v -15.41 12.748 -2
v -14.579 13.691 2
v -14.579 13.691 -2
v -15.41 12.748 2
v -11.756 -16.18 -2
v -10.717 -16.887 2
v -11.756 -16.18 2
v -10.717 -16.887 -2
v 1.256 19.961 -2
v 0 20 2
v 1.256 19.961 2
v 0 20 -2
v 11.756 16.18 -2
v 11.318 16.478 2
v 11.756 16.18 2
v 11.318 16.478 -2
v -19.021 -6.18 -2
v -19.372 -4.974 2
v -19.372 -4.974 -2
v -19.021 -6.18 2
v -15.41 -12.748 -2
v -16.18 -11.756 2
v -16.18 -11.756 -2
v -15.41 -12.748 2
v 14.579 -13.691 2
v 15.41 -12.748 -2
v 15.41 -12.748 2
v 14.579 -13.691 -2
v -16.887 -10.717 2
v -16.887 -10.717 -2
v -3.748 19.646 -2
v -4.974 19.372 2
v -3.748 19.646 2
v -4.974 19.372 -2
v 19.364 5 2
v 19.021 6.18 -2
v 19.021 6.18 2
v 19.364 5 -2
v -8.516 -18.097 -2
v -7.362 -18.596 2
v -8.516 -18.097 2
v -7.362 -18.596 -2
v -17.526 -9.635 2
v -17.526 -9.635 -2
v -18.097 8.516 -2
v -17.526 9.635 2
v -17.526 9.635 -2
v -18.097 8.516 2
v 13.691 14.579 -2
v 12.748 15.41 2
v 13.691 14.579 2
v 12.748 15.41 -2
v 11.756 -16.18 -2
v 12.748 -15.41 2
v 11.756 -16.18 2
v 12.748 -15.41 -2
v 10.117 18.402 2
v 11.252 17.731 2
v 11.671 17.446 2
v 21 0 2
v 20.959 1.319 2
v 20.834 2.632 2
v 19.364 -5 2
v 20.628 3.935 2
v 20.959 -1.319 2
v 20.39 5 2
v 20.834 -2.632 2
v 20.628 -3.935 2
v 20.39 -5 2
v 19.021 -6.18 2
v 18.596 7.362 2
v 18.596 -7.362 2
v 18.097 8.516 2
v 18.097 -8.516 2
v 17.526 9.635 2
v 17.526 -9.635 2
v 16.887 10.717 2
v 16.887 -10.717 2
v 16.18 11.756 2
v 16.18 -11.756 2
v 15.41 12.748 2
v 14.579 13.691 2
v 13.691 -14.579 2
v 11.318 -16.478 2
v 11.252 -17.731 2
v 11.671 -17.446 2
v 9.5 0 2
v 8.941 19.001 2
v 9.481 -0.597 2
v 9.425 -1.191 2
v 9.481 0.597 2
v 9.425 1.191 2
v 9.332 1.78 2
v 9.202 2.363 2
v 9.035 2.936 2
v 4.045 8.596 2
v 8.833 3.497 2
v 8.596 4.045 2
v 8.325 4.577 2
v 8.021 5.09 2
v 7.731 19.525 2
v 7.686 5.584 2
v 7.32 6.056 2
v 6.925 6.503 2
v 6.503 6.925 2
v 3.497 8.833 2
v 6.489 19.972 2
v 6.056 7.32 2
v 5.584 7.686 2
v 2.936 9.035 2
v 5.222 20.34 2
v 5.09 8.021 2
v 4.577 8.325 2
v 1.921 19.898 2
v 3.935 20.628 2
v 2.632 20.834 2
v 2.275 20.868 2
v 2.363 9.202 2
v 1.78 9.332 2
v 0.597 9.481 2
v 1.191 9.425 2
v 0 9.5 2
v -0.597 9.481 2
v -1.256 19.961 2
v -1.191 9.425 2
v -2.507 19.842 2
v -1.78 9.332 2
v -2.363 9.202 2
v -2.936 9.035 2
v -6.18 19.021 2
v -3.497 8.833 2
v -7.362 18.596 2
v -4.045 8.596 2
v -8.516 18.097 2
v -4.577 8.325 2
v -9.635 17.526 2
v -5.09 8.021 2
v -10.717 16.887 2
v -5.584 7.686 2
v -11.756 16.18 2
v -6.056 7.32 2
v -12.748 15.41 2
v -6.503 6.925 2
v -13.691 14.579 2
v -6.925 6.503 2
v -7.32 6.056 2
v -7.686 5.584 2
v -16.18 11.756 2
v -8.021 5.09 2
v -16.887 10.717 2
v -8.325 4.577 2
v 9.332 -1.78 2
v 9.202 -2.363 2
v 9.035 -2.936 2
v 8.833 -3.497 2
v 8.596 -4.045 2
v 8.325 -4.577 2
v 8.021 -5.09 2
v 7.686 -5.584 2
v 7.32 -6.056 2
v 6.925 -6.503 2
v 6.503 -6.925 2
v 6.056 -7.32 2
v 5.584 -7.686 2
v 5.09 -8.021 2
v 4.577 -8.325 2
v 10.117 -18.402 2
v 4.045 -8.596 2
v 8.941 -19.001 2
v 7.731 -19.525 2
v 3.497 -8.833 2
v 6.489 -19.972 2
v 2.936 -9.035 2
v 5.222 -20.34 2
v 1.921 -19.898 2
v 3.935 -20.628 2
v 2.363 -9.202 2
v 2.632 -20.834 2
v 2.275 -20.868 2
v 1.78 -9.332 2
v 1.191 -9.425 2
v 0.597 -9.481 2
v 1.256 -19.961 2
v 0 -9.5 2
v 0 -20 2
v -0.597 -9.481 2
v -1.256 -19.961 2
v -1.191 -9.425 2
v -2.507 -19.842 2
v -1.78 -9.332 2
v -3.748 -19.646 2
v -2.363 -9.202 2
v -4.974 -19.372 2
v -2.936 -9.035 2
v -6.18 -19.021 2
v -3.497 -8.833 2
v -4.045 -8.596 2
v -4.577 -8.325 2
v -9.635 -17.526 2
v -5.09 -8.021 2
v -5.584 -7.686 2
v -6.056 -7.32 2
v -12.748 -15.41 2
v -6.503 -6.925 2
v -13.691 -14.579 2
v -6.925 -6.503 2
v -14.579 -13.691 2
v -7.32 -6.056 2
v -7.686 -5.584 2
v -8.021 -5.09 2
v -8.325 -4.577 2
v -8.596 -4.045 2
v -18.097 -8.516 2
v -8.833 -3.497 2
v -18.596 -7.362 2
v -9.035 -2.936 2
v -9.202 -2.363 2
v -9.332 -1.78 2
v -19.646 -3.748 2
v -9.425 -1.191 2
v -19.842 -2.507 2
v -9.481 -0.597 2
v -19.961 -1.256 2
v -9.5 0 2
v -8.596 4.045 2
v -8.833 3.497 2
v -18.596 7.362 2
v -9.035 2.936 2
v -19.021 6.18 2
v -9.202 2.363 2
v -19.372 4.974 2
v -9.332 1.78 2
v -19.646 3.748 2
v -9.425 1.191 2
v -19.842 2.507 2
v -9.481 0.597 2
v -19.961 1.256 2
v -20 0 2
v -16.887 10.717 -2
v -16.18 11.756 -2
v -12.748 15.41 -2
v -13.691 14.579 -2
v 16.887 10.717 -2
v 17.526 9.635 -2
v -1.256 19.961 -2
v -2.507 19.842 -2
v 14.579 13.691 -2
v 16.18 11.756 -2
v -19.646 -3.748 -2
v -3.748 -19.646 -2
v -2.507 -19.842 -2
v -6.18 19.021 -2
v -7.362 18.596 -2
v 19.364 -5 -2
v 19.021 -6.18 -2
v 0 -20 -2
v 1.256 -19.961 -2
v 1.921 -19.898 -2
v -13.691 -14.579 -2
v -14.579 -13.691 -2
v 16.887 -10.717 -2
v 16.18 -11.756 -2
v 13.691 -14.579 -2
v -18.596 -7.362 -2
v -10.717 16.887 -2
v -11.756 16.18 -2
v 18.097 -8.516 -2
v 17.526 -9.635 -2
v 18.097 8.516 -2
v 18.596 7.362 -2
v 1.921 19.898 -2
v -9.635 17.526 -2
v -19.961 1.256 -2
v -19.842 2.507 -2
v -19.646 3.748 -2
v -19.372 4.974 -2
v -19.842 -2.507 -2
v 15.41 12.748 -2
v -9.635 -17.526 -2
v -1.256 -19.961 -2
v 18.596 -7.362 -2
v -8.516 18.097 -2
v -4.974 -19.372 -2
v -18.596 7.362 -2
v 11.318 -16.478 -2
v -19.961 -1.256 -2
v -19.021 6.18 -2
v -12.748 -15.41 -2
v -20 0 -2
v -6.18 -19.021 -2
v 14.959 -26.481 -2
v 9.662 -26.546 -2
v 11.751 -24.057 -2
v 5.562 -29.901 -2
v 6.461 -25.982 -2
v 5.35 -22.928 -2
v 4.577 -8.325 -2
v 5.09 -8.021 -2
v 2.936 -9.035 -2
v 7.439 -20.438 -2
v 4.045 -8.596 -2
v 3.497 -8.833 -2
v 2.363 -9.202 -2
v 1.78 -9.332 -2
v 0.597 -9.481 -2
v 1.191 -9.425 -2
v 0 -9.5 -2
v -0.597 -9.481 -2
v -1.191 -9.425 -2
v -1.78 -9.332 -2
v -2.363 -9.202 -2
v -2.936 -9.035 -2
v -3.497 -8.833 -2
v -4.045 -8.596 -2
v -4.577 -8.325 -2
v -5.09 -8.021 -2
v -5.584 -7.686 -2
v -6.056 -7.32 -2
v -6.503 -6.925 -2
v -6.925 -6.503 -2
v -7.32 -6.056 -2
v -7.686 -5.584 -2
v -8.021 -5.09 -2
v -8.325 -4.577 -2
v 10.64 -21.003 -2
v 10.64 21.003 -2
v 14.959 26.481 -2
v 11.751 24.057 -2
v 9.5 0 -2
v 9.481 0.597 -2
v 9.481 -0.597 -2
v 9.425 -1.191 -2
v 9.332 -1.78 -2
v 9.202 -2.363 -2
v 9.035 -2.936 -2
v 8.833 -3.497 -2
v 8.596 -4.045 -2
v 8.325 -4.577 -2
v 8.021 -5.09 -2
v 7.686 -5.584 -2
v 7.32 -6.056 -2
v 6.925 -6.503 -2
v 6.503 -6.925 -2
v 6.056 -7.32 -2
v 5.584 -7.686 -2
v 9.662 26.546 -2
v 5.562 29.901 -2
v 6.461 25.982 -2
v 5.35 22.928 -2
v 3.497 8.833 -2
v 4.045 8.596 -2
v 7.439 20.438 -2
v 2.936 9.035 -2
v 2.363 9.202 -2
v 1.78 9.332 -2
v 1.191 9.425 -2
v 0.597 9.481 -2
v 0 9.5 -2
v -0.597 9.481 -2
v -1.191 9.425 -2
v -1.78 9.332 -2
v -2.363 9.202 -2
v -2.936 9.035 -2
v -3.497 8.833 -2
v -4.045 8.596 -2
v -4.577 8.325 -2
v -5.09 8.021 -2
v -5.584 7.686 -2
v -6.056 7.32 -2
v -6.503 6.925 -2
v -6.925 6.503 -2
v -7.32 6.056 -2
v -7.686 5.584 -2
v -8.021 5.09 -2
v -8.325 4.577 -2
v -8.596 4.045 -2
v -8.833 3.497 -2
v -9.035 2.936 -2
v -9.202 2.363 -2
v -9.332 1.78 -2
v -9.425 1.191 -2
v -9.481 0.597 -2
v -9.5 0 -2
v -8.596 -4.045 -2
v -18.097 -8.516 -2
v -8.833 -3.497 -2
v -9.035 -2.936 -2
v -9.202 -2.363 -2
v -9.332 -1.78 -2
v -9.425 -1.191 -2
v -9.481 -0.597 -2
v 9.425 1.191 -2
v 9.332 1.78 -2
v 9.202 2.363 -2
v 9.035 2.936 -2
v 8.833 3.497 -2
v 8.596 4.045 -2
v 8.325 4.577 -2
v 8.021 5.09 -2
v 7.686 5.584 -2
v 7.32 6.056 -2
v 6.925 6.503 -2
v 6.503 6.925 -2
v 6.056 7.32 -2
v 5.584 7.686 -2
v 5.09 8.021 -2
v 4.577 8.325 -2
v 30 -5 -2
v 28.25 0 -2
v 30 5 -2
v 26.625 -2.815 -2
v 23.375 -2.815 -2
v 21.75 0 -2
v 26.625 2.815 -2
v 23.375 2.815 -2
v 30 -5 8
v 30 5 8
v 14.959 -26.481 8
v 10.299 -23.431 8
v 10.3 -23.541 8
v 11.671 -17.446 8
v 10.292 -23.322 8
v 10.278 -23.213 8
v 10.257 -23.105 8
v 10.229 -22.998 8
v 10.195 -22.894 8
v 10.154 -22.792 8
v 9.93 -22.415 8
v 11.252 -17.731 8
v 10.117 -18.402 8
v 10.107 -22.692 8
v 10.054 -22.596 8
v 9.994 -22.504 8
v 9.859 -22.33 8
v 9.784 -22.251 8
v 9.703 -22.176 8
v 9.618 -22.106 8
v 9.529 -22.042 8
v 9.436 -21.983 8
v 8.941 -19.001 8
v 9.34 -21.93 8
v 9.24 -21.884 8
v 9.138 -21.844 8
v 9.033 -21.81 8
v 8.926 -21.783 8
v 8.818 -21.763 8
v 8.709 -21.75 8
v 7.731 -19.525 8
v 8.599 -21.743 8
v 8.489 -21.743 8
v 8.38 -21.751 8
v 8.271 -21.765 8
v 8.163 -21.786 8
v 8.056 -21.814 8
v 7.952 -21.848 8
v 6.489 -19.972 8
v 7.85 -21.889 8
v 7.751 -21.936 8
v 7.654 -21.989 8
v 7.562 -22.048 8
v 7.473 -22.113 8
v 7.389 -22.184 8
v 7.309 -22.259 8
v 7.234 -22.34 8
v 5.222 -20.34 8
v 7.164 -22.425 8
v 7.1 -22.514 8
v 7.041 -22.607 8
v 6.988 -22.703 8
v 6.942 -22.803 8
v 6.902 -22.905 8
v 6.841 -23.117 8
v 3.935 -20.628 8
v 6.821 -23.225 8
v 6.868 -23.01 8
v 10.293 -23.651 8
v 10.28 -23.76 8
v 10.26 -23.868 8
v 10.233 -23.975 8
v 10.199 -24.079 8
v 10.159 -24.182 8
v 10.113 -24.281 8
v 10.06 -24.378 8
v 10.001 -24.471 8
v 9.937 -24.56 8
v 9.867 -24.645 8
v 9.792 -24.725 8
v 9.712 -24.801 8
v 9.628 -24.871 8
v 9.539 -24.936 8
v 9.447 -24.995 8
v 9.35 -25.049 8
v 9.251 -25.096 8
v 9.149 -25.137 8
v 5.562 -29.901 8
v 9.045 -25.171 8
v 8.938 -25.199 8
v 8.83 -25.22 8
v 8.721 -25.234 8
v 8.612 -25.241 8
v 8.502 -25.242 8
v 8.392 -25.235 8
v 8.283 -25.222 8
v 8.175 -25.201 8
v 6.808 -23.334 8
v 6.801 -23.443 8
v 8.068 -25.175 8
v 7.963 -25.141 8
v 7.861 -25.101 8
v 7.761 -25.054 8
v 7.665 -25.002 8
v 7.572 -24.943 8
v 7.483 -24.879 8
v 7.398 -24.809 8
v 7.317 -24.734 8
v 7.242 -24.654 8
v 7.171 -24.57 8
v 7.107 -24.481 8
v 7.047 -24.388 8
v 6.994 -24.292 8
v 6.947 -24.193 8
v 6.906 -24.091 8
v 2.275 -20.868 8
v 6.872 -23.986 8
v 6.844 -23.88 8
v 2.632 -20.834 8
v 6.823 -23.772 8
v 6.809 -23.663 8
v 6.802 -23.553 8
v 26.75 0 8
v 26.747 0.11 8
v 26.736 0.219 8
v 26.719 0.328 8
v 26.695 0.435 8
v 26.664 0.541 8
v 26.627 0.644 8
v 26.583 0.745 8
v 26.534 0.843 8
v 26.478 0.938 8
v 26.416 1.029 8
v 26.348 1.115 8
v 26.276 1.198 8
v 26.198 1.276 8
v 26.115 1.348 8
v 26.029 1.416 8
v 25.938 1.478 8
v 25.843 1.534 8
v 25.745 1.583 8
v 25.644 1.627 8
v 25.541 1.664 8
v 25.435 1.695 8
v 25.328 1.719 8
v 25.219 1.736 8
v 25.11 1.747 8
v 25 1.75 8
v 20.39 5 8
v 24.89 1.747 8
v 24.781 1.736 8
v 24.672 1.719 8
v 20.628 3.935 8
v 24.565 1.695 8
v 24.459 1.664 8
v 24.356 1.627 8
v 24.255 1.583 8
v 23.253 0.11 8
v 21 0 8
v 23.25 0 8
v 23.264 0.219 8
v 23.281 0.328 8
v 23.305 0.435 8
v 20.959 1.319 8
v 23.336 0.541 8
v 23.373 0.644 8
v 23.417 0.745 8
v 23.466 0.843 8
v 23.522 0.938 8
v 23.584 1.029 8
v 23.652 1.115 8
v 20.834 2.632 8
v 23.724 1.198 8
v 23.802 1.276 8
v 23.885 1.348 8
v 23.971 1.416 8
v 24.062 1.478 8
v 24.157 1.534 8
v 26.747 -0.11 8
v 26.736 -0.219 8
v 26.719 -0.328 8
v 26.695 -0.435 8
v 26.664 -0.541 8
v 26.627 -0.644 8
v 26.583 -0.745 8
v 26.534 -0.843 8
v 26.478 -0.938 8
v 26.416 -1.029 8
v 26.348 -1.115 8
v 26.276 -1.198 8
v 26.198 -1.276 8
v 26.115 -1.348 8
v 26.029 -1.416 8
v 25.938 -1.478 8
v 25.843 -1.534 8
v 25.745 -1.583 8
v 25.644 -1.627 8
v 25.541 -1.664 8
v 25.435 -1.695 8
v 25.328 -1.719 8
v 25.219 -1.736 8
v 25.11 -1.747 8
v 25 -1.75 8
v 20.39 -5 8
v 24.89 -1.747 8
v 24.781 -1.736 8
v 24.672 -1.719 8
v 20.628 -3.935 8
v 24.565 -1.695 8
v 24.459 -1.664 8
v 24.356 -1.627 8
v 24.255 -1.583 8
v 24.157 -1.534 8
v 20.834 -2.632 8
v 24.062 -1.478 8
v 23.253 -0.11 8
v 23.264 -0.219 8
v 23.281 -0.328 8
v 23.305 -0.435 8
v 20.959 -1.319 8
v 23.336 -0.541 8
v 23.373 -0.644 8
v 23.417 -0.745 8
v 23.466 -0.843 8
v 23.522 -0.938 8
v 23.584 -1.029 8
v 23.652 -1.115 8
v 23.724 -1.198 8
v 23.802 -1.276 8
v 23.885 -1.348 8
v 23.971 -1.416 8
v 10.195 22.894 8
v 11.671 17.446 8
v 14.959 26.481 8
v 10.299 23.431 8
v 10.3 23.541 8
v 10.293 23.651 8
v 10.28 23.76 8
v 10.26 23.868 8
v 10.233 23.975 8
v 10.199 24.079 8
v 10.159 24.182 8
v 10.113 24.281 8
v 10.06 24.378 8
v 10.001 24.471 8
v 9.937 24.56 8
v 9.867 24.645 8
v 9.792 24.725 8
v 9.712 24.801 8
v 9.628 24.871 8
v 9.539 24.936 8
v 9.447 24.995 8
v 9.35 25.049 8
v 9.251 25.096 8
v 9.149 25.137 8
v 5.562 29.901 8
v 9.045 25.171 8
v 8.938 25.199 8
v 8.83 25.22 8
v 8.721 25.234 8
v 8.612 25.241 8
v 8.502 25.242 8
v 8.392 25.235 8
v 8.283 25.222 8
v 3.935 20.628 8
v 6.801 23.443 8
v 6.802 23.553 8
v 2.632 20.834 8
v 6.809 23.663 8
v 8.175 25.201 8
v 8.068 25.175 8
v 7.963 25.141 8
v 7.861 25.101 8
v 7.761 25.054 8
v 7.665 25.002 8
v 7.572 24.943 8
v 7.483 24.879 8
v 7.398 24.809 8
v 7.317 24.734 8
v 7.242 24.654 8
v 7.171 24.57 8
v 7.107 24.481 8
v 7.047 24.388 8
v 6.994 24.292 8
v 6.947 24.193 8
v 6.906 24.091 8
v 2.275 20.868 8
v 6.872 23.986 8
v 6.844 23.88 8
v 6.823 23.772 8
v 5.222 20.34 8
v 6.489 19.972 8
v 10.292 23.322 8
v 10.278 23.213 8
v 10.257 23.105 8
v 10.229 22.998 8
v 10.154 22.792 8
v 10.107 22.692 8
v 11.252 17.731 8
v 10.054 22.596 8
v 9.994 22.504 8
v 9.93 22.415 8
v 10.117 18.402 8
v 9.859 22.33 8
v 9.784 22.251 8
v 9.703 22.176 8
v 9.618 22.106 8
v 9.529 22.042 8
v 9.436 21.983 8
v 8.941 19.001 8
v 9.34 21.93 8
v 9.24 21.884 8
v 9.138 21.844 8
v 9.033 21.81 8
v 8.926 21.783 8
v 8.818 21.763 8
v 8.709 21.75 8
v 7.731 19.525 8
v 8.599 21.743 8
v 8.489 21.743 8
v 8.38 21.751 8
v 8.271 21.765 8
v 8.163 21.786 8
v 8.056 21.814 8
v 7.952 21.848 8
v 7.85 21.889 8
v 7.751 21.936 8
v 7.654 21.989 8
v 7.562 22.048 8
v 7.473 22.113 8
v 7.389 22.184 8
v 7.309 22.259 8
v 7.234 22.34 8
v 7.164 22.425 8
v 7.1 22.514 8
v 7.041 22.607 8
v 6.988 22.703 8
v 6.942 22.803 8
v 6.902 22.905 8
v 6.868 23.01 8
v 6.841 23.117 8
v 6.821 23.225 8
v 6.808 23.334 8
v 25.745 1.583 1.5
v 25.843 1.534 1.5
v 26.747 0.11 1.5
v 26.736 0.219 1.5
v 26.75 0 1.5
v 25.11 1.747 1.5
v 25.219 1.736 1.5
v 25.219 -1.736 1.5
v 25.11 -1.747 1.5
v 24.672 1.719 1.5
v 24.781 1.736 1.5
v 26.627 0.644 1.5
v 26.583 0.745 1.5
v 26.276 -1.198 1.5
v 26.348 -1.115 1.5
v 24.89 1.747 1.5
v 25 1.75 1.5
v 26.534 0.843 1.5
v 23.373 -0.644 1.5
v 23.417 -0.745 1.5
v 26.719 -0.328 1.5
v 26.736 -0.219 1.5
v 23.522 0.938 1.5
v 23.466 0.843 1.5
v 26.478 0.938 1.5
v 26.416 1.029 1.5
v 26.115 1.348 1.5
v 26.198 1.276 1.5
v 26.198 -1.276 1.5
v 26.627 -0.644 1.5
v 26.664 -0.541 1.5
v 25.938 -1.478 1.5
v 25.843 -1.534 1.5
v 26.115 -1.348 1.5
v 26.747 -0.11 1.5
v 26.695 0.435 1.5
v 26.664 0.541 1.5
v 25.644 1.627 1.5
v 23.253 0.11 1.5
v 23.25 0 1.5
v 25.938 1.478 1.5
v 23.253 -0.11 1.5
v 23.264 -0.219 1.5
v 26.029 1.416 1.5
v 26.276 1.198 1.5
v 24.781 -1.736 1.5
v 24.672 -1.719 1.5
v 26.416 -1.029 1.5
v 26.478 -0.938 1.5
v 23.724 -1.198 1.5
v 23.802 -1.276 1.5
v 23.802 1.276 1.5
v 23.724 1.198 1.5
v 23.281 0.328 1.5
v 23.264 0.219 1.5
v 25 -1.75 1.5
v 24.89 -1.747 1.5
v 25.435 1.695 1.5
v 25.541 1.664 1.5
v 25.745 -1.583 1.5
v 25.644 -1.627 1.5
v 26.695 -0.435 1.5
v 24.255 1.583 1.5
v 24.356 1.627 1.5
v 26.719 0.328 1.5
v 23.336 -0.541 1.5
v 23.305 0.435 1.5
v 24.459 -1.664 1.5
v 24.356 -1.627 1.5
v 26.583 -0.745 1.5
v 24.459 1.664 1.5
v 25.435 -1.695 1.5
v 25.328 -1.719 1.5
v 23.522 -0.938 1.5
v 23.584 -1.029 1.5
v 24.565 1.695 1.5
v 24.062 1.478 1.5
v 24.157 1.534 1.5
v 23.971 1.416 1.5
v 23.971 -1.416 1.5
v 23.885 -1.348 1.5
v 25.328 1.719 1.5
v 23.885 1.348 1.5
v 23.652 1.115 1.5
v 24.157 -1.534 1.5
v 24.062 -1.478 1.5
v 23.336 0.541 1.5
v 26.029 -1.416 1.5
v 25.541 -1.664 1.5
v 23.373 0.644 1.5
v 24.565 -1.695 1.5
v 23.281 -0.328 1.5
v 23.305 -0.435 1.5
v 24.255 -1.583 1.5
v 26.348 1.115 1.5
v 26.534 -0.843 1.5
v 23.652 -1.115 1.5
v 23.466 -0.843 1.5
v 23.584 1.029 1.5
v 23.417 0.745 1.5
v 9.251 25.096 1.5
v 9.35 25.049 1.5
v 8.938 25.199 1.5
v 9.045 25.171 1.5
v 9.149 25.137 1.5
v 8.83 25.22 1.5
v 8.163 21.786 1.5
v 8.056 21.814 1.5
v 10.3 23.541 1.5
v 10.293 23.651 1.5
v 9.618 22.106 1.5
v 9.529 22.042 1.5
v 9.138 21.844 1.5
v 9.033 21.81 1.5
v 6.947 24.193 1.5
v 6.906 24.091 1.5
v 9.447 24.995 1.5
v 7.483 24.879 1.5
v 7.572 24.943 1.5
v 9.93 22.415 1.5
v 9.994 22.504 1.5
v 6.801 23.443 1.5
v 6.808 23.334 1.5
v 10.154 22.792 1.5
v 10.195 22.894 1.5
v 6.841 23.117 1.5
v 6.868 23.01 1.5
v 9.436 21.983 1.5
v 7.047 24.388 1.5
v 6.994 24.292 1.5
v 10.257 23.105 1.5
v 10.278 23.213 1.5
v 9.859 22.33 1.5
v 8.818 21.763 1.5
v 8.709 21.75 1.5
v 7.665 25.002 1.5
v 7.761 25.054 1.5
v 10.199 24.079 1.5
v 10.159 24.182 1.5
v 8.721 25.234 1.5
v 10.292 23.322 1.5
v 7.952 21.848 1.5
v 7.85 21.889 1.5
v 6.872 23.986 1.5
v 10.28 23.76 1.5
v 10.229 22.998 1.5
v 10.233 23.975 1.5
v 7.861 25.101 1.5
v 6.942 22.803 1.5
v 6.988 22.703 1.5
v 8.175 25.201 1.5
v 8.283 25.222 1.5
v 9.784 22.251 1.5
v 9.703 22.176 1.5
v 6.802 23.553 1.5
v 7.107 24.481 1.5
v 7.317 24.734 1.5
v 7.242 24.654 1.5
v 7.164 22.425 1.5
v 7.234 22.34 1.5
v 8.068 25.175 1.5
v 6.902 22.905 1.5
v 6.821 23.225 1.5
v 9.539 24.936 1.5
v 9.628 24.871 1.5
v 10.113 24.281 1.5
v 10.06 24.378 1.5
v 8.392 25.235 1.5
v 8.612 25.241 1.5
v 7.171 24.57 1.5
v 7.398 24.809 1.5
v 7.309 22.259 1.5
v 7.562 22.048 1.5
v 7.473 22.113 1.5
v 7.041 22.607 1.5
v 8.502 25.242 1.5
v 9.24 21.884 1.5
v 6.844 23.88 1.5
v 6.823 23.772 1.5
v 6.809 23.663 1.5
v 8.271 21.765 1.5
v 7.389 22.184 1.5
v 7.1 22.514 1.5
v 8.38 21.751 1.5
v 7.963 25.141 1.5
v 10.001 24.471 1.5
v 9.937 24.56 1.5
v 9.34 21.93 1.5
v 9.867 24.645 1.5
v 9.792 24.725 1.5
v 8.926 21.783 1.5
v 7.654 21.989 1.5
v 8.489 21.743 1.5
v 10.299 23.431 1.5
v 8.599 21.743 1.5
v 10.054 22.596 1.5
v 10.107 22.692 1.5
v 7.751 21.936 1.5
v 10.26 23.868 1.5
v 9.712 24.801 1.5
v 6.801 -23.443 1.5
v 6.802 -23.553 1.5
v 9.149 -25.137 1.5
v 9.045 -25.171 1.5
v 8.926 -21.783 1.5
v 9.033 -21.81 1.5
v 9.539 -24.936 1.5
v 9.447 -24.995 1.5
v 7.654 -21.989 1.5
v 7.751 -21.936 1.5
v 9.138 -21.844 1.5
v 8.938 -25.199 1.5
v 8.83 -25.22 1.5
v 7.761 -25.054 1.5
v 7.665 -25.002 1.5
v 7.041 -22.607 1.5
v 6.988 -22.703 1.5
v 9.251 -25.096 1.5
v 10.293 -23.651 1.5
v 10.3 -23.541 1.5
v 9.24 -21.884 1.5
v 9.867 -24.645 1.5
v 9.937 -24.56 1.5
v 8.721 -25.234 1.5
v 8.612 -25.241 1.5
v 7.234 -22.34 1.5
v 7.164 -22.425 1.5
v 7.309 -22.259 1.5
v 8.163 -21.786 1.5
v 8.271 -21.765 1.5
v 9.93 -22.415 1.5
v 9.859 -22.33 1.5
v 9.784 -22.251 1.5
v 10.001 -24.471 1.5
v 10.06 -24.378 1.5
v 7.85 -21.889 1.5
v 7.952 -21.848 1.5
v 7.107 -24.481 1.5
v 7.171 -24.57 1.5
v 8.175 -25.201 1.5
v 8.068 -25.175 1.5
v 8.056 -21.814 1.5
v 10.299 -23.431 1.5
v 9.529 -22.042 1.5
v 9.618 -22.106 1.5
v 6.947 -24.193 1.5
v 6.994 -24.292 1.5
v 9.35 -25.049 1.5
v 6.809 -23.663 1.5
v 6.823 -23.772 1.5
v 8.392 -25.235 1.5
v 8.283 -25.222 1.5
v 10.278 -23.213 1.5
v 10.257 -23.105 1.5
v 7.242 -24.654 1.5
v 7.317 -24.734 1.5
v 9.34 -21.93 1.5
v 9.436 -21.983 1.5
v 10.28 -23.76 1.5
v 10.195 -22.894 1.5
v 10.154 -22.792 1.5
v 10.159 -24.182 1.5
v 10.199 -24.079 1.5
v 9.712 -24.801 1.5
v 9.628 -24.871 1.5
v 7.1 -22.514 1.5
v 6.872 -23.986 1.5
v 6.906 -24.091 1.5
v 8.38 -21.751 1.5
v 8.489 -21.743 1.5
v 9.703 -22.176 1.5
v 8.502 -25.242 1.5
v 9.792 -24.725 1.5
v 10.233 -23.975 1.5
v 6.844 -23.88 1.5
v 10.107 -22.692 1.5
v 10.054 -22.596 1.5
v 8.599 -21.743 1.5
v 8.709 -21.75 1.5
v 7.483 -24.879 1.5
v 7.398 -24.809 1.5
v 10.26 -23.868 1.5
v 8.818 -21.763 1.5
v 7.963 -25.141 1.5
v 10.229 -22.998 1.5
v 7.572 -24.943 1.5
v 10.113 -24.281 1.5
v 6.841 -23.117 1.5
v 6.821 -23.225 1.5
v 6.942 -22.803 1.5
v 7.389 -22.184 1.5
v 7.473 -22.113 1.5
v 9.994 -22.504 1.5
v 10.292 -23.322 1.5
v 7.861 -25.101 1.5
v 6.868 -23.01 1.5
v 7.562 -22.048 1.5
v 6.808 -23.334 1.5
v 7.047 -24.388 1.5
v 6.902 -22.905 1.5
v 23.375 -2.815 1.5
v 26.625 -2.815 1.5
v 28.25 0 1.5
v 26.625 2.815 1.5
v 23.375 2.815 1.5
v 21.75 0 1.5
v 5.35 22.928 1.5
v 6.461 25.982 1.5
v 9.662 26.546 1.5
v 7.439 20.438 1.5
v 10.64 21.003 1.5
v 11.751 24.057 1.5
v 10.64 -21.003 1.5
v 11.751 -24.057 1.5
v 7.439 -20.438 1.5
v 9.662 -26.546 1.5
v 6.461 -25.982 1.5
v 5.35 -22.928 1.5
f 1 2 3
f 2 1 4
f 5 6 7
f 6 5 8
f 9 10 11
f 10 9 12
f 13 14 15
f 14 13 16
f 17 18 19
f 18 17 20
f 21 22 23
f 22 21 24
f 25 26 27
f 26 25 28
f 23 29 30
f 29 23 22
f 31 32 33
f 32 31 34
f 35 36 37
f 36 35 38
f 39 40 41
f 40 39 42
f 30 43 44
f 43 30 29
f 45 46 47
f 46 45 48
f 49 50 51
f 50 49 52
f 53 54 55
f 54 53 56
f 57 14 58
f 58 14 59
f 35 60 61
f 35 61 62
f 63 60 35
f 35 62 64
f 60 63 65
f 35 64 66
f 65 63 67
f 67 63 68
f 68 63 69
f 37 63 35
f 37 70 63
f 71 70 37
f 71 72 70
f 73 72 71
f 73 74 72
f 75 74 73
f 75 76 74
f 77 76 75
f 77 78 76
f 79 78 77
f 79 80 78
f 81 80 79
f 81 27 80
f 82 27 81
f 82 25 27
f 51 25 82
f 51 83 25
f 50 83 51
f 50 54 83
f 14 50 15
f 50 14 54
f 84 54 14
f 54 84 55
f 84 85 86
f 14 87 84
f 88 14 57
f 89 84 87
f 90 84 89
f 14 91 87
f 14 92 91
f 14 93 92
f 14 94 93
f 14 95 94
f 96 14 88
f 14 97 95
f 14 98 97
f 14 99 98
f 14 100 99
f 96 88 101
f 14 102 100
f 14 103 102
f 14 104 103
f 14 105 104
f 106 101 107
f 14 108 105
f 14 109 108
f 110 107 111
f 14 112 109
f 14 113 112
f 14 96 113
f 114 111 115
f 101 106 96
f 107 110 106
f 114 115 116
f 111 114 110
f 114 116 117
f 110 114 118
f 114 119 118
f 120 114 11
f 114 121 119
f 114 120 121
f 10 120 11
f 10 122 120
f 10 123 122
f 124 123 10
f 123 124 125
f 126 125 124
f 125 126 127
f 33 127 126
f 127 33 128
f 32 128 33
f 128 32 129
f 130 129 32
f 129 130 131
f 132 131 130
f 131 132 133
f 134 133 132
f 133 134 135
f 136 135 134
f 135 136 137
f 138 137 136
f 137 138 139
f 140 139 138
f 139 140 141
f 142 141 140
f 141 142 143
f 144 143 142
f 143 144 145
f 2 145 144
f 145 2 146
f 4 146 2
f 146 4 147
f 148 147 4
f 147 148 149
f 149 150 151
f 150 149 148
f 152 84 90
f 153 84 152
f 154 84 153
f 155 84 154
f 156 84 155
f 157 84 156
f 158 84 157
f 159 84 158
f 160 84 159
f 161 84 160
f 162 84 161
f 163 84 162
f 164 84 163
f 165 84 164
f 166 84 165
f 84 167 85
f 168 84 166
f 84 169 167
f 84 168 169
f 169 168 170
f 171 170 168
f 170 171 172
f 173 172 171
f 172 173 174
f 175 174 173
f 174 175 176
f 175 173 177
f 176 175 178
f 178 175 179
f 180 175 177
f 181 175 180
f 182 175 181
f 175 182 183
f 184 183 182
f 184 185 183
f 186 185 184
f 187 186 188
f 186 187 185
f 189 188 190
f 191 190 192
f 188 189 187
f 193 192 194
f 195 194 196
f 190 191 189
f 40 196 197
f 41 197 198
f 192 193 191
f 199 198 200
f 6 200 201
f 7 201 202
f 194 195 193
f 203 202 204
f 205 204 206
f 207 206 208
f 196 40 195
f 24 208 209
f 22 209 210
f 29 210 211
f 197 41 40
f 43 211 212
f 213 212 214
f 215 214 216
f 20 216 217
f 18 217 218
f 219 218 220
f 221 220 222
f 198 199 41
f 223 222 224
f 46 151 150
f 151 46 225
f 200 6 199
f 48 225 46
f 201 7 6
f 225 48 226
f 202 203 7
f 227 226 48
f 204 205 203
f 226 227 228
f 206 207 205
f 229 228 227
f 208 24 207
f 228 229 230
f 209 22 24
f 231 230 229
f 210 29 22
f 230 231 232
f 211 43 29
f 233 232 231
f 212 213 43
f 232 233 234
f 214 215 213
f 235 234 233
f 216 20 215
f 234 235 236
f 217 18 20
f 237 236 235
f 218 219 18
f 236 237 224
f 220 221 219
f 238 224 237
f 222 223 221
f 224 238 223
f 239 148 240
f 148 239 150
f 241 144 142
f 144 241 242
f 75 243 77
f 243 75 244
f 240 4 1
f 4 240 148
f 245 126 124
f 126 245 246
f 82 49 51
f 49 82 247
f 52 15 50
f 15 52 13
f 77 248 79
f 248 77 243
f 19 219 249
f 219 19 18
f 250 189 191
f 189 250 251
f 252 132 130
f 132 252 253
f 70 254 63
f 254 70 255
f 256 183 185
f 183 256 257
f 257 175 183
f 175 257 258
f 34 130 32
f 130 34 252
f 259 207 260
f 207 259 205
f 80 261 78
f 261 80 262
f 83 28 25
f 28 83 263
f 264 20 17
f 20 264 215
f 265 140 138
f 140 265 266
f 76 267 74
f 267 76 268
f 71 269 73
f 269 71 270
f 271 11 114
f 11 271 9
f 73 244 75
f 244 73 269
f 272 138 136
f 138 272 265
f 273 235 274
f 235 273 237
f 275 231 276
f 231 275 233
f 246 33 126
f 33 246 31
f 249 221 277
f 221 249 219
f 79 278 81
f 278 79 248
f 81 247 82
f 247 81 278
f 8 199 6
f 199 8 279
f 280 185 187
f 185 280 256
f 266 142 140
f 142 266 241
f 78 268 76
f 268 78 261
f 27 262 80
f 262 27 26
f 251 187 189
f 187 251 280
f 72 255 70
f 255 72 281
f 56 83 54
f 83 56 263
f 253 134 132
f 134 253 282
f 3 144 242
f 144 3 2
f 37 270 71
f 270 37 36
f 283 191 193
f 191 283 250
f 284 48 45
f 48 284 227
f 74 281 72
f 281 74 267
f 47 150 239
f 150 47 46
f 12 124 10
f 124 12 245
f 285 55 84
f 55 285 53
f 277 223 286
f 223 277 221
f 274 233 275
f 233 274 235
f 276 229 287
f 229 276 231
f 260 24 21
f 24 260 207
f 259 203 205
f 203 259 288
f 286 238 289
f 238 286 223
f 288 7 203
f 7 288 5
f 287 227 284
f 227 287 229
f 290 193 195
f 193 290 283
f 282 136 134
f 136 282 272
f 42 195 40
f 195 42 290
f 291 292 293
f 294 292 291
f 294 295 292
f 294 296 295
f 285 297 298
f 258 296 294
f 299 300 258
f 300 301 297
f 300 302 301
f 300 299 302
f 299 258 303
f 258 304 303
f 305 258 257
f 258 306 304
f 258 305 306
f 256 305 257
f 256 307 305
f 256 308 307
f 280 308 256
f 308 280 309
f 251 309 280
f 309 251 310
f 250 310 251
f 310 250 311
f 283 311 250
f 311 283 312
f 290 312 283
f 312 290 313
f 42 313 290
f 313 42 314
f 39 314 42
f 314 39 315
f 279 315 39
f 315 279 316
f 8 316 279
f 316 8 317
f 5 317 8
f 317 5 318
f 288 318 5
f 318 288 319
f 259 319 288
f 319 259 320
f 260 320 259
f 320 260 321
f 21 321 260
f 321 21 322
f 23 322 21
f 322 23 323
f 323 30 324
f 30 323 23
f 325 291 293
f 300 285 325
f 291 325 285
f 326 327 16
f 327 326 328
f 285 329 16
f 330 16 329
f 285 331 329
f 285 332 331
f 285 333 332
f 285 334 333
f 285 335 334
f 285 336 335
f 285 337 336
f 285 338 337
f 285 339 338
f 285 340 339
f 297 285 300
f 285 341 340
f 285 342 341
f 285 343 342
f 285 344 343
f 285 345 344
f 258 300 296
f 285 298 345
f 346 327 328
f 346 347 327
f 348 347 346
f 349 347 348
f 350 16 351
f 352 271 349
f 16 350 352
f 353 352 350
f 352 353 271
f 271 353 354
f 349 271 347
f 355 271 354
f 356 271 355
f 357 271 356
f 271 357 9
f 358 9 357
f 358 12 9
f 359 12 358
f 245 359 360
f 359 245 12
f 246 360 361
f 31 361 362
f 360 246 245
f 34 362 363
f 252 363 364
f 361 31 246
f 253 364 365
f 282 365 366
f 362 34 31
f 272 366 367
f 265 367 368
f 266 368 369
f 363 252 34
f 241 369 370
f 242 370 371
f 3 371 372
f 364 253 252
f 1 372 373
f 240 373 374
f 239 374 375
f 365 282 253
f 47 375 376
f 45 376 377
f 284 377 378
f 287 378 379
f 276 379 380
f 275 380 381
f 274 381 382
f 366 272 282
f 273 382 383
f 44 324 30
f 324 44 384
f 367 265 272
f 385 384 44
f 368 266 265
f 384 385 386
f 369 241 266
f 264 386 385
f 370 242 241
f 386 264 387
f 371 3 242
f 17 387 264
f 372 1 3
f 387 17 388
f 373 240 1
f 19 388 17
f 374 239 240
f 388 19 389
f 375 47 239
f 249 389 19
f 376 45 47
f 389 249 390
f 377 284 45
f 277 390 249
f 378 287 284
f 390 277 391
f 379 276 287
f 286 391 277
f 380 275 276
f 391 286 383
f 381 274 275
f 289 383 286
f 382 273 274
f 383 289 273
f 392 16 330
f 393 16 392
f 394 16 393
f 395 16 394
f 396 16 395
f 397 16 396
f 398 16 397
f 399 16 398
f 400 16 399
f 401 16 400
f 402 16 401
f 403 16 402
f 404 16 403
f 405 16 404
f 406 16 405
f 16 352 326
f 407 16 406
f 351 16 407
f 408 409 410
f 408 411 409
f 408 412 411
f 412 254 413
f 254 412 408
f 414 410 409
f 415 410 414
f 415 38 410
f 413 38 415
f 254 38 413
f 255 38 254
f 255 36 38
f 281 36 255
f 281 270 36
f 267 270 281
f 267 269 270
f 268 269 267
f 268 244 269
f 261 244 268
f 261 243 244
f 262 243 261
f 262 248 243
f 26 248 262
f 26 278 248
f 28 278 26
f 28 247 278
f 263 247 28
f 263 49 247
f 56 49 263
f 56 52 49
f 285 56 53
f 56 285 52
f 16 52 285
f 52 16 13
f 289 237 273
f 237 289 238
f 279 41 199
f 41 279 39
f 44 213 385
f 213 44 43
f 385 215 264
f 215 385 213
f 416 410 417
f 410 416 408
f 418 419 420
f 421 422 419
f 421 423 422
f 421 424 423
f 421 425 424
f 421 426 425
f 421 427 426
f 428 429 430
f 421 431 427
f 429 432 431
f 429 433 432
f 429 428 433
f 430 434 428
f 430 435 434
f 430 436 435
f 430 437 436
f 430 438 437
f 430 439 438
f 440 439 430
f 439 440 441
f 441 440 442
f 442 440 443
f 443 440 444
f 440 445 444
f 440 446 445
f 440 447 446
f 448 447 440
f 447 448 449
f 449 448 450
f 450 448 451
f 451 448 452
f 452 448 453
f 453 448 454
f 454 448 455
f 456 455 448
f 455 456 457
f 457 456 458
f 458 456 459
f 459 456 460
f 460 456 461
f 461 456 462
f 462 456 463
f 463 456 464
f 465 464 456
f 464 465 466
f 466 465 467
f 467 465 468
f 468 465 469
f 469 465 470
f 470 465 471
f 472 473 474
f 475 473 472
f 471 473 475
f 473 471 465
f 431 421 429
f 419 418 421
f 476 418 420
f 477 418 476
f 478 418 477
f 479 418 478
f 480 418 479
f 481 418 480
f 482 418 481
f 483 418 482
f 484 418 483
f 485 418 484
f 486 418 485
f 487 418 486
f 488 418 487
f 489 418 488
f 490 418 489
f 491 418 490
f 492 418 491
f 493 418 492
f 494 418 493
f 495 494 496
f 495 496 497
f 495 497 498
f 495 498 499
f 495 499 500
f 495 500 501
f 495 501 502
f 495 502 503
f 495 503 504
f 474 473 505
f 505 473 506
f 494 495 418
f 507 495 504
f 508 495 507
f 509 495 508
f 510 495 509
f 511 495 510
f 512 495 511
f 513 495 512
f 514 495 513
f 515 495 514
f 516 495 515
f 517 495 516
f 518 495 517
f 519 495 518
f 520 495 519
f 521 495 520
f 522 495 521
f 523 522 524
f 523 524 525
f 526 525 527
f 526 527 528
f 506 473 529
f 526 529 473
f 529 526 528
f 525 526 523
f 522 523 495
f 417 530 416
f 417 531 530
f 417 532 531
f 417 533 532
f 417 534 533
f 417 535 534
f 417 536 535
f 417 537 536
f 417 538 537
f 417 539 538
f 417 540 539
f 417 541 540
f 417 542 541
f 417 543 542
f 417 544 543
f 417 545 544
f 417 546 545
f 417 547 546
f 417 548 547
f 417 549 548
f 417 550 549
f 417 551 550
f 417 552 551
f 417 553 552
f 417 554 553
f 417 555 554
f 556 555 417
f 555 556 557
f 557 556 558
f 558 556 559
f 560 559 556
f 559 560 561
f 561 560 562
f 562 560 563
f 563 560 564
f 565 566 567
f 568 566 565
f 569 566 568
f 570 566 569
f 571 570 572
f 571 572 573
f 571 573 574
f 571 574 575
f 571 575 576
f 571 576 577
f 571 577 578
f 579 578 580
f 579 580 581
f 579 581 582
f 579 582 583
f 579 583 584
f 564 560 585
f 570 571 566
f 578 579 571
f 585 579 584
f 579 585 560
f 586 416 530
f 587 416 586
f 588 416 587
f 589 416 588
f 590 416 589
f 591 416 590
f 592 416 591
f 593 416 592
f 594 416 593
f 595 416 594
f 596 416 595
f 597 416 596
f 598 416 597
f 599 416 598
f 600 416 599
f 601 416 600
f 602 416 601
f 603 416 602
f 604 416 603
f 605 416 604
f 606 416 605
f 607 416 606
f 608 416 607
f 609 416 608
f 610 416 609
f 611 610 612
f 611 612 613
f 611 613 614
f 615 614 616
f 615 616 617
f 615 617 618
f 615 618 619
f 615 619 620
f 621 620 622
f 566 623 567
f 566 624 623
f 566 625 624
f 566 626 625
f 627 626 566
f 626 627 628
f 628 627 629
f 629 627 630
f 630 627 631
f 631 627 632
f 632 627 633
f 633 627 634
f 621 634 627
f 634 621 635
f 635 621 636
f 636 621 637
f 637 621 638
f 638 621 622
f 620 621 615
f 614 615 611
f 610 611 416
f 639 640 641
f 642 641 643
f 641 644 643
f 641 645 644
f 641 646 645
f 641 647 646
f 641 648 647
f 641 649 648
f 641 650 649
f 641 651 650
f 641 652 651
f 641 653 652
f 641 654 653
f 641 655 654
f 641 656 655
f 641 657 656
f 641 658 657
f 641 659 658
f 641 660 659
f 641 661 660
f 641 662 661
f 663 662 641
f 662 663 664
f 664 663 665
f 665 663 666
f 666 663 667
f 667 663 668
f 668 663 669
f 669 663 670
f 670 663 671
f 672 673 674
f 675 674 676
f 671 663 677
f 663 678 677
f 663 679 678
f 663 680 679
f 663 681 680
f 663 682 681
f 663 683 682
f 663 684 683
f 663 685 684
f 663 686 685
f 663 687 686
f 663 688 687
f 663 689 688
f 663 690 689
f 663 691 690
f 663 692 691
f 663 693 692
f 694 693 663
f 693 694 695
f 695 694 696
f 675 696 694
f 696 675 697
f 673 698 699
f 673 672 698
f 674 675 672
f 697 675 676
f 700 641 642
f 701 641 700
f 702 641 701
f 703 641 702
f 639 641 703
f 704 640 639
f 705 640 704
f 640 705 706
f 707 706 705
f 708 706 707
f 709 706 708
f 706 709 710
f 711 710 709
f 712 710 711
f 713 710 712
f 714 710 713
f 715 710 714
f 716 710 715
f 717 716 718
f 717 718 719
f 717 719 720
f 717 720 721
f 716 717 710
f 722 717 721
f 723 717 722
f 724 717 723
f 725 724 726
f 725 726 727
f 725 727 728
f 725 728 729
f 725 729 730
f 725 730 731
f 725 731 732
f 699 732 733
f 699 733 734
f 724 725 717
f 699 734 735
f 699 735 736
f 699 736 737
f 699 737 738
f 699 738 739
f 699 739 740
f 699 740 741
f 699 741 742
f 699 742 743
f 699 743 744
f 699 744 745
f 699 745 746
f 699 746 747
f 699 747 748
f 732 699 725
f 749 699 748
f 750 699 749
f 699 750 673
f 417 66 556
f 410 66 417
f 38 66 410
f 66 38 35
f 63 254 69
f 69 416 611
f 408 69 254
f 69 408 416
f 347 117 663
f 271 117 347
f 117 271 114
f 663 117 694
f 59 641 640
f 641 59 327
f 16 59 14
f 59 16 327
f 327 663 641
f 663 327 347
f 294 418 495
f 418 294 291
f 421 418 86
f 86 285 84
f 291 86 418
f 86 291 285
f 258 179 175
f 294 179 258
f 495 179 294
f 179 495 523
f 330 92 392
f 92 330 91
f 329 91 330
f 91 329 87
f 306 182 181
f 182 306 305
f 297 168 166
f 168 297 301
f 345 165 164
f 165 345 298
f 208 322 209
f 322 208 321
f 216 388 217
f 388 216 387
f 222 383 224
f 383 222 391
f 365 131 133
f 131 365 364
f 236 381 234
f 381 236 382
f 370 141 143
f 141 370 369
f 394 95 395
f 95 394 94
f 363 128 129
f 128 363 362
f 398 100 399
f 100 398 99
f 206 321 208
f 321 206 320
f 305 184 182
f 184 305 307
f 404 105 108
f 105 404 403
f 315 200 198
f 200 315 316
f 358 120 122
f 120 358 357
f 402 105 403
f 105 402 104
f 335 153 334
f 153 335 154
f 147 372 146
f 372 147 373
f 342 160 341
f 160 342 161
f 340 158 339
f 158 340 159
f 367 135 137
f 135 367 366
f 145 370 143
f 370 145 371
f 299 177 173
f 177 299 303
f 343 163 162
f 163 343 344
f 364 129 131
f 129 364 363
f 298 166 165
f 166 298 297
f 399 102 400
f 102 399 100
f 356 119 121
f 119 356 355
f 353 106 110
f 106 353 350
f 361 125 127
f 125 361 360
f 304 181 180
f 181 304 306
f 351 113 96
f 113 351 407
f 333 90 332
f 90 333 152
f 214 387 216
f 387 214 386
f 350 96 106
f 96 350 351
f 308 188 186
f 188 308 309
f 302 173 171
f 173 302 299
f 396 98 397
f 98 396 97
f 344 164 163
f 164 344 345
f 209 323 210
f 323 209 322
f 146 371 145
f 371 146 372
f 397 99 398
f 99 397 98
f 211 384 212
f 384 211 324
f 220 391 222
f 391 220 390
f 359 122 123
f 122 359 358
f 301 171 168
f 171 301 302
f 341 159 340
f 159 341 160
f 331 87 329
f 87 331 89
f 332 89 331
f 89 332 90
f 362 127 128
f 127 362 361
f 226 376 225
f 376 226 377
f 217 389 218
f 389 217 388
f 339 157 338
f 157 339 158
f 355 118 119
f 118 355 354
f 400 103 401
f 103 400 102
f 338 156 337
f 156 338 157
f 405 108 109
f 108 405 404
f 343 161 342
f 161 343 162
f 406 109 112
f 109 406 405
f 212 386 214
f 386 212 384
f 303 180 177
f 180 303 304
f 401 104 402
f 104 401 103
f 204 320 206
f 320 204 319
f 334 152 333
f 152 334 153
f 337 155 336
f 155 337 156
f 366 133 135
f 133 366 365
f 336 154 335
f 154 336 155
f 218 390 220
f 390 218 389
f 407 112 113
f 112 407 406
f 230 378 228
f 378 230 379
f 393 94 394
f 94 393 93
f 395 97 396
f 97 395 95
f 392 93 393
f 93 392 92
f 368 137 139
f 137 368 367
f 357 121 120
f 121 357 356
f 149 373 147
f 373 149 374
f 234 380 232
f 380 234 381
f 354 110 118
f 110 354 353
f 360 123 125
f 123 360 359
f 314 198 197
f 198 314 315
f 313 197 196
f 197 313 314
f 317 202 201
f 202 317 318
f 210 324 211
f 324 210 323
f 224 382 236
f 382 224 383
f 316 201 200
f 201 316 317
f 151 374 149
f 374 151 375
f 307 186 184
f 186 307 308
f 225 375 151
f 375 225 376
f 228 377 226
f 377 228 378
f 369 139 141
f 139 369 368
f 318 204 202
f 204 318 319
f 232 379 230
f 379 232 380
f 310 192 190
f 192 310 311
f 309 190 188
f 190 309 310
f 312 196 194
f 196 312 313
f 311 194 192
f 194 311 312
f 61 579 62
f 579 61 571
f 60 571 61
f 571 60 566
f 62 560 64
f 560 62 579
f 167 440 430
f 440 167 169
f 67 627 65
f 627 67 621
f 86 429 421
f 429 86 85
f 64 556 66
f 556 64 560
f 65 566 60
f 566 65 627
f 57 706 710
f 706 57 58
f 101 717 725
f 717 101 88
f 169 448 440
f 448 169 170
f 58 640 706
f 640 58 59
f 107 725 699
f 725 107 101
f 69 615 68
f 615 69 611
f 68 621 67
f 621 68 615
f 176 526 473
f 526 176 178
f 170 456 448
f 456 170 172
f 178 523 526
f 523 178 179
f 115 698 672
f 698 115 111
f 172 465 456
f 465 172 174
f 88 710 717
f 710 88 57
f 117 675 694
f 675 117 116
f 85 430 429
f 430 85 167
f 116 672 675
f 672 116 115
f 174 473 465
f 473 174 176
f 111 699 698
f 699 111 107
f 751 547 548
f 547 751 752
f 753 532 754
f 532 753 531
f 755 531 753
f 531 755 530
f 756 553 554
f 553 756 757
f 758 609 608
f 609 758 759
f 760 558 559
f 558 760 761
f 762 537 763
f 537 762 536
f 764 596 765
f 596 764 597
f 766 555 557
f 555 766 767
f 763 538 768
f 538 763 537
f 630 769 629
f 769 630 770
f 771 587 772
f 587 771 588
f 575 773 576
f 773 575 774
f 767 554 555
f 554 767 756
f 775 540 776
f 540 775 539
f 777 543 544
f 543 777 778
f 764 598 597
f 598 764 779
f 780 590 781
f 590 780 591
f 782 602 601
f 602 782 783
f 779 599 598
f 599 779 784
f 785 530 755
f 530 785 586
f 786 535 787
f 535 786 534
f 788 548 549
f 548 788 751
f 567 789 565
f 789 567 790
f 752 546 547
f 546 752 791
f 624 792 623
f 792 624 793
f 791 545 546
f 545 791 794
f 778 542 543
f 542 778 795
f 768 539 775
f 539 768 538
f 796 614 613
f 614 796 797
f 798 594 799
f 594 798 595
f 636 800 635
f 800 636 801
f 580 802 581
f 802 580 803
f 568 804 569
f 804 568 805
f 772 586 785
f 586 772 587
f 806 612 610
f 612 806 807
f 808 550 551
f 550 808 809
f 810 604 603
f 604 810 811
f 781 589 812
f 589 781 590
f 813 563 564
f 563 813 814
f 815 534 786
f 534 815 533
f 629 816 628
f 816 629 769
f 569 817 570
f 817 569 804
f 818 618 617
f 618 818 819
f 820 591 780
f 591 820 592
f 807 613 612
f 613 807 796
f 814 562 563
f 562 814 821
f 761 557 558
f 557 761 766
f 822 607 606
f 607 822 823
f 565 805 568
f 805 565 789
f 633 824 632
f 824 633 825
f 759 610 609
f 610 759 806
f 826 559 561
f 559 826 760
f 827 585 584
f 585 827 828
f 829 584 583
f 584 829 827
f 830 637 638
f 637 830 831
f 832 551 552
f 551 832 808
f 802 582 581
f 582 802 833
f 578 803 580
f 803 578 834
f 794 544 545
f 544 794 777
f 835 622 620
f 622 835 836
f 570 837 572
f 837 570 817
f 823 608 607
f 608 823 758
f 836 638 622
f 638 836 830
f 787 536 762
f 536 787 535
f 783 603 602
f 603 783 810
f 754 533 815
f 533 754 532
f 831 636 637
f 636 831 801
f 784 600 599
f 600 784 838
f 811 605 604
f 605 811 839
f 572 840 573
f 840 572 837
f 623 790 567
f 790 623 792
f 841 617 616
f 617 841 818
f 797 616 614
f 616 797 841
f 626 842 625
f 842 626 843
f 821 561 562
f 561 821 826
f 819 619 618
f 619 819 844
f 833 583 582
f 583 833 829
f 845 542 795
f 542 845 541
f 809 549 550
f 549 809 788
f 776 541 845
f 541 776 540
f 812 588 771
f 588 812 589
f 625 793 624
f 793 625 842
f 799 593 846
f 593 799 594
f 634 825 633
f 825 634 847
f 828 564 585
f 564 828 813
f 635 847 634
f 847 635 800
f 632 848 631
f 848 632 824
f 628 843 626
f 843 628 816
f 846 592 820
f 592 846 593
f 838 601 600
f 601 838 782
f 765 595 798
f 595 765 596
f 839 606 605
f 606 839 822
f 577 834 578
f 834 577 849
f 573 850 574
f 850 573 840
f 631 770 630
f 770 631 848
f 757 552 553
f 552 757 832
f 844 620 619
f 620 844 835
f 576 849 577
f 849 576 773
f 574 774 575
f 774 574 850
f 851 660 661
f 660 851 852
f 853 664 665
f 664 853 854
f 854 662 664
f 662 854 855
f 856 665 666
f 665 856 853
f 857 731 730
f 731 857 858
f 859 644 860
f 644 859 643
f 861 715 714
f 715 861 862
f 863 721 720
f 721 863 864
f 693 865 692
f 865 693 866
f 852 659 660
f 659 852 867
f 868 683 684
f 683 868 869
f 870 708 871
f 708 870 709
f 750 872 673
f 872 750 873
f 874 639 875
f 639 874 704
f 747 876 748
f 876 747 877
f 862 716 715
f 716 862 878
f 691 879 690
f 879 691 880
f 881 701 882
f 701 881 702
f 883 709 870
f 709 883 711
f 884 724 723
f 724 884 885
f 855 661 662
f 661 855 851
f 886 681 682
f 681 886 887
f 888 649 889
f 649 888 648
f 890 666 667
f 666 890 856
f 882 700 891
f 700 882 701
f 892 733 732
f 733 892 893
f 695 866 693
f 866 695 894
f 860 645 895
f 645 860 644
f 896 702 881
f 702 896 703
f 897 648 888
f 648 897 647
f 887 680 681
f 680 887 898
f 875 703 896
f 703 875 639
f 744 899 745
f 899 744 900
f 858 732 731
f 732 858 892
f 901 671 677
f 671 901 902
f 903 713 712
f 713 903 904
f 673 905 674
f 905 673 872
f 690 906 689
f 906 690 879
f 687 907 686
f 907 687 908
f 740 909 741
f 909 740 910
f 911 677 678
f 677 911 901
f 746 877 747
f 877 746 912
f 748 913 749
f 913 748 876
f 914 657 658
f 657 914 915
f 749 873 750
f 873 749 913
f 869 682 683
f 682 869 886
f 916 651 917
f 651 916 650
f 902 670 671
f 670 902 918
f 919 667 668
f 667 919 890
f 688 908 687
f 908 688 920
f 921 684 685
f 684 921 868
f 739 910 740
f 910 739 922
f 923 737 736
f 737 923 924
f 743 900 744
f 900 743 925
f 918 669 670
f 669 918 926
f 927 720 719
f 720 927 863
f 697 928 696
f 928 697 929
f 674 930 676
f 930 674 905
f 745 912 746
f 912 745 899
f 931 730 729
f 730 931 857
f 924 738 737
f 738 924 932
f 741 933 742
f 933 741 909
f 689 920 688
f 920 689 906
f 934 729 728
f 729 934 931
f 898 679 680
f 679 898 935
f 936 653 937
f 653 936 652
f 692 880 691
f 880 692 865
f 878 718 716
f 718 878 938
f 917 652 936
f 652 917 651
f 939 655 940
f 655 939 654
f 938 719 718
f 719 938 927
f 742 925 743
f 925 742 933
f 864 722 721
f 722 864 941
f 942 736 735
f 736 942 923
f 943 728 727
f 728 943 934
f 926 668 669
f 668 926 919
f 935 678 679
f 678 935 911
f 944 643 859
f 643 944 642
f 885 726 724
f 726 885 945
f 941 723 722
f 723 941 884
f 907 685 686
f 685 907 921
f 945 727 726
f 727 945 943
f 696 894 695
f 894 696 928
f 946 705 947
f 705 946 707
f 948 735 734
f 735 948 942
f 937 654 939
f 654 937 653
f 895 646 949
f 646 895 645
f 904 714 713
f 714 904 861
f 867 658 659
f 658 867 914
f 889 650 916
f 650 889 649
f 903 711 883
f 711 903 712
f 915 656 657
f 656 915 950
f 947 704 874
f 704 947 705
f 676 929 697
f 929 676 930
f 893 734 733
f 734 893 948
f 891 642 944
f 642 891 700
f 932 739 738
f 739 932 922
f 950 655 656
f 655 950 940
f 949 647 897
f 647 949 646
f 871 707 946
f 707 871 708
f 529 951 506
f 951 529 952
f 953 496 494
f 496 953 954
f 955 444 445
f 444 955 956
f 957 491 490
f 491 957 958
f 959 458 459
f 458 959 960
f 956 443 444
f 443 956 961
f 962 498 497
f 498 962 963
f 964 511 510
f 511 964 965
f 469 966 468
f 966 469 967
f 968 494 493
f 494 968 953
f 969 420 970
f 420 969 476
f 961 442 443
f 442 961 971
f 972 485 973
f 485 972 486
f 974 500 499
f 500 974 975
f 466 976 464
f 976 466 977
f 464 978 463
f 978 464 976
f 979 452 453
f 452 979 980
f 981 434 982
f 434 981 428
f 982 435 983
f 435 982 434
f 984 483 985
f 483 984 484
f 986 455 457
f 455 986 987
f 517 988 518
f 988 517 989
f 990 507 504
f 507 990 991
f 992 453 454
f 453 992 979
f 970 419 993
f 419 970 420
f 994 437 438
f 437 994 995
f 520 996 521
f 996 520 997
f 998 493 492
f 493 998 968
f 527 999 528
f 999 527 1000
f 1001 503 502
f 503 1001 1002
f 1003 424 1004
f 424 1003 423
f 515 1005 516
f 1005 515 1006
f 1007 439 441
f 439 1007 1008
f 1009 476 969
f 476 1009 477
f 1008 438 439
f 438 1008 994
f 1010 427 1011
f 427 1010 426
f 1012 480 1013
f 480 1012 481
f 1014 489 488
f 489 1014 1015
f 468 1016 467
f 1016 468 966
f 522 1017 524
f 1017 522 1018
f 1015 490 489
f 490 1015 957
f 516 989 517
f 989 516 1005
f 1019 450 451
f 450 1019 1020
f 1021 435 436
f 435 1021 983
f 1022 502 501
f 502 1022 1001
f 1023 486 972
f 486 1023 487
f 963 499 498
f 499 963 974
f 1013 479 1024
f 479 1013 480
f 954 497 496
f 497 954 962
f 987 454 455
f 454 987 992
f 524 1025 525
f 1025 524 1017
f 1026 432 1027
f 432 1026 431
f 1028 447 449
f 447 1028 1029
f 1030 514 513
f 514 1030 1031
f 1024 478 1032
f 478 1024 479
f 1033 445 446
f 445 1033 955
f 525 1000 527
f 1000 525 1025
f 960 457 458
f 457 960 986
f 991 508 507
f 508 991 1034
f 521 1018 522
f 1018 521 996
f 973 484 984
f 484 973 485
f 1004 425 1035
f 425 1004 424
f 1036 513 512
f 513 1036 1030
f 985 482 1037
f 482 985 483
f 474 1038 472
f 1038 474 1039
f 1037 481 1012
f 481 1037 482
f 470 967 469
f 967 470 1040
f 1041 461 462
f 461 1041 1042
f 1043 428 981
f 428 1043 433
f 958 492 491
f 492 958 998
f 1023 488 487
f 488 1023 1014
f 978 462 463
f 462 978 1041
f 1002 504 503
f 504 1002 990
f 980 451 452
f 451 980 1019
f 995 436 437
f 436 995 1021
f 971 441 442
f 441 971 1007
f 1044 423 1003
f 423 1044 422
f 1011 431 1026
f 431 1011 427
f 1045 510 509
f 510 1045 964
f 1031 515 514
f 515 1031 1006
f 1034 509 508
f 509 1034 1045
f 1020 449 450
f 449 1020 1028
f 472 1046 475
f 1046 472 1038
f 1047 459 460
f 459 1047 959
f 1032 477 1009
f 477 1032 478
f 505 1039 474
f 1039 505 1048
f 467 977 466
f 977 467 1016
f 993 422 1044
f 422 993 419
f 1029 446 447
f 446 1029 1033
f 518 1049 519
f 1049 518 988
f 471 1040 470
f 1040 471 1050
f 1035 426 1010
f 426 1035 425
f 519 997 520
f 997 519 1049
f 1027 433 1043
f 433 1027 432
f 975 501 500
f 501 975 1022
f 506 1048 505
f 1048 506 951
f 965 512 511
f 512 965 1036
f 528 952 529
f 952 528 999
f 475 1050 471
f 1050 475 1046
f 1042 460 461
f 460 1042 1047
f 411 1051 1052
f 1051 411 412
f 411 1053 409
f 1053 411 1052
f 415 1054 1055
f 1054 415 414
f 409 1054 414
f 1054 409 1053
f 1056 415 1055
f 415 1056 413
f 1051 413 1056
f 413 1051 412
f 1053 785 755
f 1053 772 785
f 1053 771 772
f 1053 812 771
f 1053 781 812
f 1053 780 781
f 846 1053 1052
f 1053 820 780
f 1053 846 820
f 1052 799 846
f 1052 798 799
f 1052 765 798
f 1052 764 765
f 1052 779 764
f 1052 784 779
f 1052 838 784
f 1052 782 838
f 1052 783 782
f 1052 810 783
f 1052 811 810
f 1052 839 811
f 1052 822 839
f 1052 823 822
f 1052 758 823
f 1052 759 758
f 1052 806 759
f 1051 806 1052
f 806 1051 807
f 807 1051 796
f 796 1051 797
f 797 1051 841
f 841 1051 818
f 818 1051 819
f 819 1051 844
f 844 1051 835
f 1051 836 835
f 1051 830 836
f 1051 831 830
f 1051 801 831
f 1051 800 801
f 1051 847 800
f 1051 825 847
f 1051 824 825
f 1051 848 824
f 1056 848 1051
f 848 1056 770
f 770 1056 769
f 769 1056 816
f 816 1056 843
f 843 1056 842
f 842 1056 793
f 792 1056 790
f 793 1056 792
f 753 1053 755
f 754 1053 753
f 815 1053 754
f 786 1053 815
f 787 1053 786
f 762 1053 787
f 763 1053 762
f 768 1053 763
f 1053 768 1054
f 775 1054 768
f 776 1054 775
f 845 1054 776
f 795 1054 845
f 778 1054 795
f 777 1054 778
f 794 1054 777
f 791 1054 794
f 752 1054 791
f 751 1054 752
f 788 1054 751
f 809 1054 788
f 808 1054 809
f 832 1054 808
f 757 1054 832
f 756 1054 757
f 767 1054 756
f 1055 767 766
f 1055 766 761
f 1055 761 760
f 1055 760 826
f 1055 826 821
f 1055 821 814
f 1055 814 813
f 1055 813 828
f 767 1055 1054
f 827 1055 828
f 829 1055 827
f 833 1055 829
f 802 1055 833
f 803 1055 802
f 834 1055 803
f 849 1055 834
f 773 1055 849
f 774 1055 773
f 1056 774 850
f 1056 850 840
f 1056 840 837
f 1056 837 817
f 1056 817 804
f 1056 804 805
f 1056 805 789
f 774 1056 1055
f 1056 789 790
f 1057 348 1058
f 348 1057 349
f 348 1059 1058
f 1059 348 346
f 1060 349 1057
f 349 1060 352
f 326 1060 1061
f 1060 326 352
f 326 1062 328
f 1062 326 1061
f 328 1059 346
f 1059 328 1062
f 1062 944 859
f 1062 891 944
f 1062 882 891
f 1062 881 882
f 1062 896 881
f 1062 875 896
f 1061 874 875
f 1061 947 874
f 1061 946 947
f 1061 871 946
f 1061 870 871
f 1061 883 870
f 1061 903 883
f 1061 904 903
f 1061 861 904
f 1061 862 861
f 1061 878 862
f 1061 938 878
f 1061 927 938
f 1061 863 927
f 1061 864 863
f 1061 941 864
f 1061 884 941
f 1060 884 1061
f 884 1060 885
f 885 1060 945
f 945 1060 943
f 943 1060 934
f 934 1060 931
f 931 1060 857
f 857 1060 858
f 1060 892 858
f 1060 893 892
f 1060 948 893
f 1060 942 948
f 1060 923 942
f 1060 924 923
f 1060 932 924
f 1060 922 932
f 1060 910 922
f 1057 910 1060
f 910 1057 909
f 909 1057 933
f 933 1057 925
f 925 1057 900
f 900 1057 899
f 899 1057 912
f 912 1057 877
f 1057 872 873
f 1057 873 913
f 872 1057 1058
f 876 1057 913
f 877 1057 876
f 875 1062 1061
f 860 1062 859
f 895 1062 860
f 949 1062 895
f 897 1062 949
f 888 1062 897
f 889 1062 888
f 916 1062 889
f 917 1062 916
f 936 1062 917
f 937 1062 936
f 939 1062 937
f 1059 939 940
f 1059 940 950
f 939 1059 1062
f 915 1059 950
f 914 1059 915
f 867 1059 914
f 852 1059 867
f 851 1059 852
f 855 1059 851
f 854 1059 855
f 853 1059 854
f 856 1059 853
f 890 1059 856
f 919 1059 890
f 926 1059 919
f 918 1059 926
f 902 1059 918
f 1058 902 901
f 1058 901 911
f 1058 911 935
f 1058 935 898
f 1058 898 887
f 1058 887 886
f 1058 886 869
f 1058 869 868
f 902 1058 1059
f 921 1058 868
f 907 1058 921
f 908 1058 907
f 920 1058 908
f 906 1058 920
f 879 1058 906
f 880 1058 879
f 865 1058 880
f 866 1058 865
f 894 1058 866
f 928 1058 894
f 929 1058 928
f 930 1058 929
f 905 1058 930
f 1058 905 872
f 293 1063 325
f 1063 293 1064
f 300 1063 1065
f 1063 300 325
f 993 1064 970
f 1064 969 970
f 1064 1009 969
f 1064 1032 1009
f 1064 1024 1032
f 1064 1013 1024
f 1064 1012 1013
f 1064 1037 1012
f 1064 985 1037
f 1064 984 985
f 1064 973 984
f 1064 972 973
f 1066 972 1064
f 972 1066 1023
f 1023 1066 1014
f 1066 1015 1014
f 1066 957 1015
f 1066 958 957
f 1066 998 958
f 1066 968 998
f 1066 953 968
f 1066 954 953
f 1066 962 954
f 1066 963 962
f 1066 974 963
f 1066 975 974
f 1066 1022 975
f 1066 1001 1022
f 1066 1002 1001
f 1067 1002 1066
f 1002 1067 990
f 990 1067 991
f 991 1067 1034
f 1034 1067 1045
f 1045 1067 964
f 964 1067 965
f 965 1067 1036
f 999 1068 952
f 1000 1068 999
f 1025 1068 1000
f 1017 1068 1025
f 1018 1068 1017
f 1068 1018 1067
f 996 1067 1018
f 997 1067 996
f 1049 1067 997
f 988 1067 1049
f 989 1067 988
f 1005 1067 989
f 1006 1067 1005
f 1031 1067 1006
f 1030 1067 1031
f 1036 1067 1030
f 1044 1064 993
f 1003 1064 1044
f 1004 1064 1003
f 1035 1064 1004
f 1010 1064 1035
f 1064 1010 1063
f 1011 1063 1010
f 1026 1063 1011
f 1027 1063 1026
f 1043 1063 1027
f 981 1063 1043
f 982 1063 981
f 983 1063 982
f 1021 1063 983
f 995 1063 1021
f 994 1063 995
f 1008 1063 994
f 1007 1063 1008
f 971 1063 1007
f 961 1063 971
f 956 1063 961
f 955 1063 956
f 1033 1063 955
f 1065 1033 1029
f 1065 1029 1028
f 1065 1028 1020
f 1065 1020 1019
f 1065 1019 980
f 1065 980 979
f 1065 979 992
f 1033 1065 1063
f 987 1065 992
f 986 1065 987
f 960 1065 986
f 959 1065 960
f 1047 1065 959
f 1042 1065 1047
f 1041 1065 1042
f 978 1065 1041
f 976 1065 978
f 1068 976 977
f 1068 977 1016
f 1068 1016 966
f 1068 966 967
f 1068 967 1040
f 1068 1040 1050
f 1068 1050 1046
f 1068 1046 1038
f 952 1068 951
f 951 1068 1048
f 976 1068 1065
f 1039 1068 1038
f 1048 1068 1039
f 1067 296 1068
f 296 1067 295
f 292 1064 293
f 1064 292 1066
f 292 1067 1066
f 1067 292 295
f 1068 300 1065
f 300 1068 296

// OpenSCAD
$fn=100;

difference() {
    union() {
        cylinder(h=4, d=40, center=true);  // Hauptkoerper
        translate([15,0,5-2]) cube([30,10,10],center=true);                       // Anschraubungen
        rotate ([0,0, 70]) translate([15,0,5-2]) cube([30,10,10],center=true);    // Anschraubungen
        rotate ([0,0,-70]) translate([15,0,5-2]) cube([30,10,10],center=true);    // Anschraubungen
    }
    cylinder(h=50,d=19,center=true);      // RiKuLa
    translate([0,0,6]) cylinder(h=8, d=42, center=true);    // Freibereich

    translate([ 25,0,0]) cylinder(h=100,d=3.5,center=true);  // Montage-Bohrung
    rotate ([0,0, 70]) translate([ 25,0,0]) cylinder(h=100,d=3.5,center=true);  // Montage-Bohrung
    rotate ([0,0,-70]) translate([ 25,0,0]) cylinder(h=100,d=3.5,center=true);  // Montage-Bohrung

    // translate([ 25,0,-1]) cylinder(h=5,d1=6, d2=0,center=true);     // Senkung
    
    translate([ 25,0,-1]) cylinder(h=5,d=6.5,center=true, $fn=6);   // 6-Kant
    rotate ([0,0, 70]) translate([25,0,-1]) cylinder(h=5,d=6.5,center=true, $fn=6);   // 6-Kant
    rotate ([0,0,-70]) translate([25,0,-1]) cylinder(h=5,d=6.5,center=true, $fn=6);   // 6-Kant
}
